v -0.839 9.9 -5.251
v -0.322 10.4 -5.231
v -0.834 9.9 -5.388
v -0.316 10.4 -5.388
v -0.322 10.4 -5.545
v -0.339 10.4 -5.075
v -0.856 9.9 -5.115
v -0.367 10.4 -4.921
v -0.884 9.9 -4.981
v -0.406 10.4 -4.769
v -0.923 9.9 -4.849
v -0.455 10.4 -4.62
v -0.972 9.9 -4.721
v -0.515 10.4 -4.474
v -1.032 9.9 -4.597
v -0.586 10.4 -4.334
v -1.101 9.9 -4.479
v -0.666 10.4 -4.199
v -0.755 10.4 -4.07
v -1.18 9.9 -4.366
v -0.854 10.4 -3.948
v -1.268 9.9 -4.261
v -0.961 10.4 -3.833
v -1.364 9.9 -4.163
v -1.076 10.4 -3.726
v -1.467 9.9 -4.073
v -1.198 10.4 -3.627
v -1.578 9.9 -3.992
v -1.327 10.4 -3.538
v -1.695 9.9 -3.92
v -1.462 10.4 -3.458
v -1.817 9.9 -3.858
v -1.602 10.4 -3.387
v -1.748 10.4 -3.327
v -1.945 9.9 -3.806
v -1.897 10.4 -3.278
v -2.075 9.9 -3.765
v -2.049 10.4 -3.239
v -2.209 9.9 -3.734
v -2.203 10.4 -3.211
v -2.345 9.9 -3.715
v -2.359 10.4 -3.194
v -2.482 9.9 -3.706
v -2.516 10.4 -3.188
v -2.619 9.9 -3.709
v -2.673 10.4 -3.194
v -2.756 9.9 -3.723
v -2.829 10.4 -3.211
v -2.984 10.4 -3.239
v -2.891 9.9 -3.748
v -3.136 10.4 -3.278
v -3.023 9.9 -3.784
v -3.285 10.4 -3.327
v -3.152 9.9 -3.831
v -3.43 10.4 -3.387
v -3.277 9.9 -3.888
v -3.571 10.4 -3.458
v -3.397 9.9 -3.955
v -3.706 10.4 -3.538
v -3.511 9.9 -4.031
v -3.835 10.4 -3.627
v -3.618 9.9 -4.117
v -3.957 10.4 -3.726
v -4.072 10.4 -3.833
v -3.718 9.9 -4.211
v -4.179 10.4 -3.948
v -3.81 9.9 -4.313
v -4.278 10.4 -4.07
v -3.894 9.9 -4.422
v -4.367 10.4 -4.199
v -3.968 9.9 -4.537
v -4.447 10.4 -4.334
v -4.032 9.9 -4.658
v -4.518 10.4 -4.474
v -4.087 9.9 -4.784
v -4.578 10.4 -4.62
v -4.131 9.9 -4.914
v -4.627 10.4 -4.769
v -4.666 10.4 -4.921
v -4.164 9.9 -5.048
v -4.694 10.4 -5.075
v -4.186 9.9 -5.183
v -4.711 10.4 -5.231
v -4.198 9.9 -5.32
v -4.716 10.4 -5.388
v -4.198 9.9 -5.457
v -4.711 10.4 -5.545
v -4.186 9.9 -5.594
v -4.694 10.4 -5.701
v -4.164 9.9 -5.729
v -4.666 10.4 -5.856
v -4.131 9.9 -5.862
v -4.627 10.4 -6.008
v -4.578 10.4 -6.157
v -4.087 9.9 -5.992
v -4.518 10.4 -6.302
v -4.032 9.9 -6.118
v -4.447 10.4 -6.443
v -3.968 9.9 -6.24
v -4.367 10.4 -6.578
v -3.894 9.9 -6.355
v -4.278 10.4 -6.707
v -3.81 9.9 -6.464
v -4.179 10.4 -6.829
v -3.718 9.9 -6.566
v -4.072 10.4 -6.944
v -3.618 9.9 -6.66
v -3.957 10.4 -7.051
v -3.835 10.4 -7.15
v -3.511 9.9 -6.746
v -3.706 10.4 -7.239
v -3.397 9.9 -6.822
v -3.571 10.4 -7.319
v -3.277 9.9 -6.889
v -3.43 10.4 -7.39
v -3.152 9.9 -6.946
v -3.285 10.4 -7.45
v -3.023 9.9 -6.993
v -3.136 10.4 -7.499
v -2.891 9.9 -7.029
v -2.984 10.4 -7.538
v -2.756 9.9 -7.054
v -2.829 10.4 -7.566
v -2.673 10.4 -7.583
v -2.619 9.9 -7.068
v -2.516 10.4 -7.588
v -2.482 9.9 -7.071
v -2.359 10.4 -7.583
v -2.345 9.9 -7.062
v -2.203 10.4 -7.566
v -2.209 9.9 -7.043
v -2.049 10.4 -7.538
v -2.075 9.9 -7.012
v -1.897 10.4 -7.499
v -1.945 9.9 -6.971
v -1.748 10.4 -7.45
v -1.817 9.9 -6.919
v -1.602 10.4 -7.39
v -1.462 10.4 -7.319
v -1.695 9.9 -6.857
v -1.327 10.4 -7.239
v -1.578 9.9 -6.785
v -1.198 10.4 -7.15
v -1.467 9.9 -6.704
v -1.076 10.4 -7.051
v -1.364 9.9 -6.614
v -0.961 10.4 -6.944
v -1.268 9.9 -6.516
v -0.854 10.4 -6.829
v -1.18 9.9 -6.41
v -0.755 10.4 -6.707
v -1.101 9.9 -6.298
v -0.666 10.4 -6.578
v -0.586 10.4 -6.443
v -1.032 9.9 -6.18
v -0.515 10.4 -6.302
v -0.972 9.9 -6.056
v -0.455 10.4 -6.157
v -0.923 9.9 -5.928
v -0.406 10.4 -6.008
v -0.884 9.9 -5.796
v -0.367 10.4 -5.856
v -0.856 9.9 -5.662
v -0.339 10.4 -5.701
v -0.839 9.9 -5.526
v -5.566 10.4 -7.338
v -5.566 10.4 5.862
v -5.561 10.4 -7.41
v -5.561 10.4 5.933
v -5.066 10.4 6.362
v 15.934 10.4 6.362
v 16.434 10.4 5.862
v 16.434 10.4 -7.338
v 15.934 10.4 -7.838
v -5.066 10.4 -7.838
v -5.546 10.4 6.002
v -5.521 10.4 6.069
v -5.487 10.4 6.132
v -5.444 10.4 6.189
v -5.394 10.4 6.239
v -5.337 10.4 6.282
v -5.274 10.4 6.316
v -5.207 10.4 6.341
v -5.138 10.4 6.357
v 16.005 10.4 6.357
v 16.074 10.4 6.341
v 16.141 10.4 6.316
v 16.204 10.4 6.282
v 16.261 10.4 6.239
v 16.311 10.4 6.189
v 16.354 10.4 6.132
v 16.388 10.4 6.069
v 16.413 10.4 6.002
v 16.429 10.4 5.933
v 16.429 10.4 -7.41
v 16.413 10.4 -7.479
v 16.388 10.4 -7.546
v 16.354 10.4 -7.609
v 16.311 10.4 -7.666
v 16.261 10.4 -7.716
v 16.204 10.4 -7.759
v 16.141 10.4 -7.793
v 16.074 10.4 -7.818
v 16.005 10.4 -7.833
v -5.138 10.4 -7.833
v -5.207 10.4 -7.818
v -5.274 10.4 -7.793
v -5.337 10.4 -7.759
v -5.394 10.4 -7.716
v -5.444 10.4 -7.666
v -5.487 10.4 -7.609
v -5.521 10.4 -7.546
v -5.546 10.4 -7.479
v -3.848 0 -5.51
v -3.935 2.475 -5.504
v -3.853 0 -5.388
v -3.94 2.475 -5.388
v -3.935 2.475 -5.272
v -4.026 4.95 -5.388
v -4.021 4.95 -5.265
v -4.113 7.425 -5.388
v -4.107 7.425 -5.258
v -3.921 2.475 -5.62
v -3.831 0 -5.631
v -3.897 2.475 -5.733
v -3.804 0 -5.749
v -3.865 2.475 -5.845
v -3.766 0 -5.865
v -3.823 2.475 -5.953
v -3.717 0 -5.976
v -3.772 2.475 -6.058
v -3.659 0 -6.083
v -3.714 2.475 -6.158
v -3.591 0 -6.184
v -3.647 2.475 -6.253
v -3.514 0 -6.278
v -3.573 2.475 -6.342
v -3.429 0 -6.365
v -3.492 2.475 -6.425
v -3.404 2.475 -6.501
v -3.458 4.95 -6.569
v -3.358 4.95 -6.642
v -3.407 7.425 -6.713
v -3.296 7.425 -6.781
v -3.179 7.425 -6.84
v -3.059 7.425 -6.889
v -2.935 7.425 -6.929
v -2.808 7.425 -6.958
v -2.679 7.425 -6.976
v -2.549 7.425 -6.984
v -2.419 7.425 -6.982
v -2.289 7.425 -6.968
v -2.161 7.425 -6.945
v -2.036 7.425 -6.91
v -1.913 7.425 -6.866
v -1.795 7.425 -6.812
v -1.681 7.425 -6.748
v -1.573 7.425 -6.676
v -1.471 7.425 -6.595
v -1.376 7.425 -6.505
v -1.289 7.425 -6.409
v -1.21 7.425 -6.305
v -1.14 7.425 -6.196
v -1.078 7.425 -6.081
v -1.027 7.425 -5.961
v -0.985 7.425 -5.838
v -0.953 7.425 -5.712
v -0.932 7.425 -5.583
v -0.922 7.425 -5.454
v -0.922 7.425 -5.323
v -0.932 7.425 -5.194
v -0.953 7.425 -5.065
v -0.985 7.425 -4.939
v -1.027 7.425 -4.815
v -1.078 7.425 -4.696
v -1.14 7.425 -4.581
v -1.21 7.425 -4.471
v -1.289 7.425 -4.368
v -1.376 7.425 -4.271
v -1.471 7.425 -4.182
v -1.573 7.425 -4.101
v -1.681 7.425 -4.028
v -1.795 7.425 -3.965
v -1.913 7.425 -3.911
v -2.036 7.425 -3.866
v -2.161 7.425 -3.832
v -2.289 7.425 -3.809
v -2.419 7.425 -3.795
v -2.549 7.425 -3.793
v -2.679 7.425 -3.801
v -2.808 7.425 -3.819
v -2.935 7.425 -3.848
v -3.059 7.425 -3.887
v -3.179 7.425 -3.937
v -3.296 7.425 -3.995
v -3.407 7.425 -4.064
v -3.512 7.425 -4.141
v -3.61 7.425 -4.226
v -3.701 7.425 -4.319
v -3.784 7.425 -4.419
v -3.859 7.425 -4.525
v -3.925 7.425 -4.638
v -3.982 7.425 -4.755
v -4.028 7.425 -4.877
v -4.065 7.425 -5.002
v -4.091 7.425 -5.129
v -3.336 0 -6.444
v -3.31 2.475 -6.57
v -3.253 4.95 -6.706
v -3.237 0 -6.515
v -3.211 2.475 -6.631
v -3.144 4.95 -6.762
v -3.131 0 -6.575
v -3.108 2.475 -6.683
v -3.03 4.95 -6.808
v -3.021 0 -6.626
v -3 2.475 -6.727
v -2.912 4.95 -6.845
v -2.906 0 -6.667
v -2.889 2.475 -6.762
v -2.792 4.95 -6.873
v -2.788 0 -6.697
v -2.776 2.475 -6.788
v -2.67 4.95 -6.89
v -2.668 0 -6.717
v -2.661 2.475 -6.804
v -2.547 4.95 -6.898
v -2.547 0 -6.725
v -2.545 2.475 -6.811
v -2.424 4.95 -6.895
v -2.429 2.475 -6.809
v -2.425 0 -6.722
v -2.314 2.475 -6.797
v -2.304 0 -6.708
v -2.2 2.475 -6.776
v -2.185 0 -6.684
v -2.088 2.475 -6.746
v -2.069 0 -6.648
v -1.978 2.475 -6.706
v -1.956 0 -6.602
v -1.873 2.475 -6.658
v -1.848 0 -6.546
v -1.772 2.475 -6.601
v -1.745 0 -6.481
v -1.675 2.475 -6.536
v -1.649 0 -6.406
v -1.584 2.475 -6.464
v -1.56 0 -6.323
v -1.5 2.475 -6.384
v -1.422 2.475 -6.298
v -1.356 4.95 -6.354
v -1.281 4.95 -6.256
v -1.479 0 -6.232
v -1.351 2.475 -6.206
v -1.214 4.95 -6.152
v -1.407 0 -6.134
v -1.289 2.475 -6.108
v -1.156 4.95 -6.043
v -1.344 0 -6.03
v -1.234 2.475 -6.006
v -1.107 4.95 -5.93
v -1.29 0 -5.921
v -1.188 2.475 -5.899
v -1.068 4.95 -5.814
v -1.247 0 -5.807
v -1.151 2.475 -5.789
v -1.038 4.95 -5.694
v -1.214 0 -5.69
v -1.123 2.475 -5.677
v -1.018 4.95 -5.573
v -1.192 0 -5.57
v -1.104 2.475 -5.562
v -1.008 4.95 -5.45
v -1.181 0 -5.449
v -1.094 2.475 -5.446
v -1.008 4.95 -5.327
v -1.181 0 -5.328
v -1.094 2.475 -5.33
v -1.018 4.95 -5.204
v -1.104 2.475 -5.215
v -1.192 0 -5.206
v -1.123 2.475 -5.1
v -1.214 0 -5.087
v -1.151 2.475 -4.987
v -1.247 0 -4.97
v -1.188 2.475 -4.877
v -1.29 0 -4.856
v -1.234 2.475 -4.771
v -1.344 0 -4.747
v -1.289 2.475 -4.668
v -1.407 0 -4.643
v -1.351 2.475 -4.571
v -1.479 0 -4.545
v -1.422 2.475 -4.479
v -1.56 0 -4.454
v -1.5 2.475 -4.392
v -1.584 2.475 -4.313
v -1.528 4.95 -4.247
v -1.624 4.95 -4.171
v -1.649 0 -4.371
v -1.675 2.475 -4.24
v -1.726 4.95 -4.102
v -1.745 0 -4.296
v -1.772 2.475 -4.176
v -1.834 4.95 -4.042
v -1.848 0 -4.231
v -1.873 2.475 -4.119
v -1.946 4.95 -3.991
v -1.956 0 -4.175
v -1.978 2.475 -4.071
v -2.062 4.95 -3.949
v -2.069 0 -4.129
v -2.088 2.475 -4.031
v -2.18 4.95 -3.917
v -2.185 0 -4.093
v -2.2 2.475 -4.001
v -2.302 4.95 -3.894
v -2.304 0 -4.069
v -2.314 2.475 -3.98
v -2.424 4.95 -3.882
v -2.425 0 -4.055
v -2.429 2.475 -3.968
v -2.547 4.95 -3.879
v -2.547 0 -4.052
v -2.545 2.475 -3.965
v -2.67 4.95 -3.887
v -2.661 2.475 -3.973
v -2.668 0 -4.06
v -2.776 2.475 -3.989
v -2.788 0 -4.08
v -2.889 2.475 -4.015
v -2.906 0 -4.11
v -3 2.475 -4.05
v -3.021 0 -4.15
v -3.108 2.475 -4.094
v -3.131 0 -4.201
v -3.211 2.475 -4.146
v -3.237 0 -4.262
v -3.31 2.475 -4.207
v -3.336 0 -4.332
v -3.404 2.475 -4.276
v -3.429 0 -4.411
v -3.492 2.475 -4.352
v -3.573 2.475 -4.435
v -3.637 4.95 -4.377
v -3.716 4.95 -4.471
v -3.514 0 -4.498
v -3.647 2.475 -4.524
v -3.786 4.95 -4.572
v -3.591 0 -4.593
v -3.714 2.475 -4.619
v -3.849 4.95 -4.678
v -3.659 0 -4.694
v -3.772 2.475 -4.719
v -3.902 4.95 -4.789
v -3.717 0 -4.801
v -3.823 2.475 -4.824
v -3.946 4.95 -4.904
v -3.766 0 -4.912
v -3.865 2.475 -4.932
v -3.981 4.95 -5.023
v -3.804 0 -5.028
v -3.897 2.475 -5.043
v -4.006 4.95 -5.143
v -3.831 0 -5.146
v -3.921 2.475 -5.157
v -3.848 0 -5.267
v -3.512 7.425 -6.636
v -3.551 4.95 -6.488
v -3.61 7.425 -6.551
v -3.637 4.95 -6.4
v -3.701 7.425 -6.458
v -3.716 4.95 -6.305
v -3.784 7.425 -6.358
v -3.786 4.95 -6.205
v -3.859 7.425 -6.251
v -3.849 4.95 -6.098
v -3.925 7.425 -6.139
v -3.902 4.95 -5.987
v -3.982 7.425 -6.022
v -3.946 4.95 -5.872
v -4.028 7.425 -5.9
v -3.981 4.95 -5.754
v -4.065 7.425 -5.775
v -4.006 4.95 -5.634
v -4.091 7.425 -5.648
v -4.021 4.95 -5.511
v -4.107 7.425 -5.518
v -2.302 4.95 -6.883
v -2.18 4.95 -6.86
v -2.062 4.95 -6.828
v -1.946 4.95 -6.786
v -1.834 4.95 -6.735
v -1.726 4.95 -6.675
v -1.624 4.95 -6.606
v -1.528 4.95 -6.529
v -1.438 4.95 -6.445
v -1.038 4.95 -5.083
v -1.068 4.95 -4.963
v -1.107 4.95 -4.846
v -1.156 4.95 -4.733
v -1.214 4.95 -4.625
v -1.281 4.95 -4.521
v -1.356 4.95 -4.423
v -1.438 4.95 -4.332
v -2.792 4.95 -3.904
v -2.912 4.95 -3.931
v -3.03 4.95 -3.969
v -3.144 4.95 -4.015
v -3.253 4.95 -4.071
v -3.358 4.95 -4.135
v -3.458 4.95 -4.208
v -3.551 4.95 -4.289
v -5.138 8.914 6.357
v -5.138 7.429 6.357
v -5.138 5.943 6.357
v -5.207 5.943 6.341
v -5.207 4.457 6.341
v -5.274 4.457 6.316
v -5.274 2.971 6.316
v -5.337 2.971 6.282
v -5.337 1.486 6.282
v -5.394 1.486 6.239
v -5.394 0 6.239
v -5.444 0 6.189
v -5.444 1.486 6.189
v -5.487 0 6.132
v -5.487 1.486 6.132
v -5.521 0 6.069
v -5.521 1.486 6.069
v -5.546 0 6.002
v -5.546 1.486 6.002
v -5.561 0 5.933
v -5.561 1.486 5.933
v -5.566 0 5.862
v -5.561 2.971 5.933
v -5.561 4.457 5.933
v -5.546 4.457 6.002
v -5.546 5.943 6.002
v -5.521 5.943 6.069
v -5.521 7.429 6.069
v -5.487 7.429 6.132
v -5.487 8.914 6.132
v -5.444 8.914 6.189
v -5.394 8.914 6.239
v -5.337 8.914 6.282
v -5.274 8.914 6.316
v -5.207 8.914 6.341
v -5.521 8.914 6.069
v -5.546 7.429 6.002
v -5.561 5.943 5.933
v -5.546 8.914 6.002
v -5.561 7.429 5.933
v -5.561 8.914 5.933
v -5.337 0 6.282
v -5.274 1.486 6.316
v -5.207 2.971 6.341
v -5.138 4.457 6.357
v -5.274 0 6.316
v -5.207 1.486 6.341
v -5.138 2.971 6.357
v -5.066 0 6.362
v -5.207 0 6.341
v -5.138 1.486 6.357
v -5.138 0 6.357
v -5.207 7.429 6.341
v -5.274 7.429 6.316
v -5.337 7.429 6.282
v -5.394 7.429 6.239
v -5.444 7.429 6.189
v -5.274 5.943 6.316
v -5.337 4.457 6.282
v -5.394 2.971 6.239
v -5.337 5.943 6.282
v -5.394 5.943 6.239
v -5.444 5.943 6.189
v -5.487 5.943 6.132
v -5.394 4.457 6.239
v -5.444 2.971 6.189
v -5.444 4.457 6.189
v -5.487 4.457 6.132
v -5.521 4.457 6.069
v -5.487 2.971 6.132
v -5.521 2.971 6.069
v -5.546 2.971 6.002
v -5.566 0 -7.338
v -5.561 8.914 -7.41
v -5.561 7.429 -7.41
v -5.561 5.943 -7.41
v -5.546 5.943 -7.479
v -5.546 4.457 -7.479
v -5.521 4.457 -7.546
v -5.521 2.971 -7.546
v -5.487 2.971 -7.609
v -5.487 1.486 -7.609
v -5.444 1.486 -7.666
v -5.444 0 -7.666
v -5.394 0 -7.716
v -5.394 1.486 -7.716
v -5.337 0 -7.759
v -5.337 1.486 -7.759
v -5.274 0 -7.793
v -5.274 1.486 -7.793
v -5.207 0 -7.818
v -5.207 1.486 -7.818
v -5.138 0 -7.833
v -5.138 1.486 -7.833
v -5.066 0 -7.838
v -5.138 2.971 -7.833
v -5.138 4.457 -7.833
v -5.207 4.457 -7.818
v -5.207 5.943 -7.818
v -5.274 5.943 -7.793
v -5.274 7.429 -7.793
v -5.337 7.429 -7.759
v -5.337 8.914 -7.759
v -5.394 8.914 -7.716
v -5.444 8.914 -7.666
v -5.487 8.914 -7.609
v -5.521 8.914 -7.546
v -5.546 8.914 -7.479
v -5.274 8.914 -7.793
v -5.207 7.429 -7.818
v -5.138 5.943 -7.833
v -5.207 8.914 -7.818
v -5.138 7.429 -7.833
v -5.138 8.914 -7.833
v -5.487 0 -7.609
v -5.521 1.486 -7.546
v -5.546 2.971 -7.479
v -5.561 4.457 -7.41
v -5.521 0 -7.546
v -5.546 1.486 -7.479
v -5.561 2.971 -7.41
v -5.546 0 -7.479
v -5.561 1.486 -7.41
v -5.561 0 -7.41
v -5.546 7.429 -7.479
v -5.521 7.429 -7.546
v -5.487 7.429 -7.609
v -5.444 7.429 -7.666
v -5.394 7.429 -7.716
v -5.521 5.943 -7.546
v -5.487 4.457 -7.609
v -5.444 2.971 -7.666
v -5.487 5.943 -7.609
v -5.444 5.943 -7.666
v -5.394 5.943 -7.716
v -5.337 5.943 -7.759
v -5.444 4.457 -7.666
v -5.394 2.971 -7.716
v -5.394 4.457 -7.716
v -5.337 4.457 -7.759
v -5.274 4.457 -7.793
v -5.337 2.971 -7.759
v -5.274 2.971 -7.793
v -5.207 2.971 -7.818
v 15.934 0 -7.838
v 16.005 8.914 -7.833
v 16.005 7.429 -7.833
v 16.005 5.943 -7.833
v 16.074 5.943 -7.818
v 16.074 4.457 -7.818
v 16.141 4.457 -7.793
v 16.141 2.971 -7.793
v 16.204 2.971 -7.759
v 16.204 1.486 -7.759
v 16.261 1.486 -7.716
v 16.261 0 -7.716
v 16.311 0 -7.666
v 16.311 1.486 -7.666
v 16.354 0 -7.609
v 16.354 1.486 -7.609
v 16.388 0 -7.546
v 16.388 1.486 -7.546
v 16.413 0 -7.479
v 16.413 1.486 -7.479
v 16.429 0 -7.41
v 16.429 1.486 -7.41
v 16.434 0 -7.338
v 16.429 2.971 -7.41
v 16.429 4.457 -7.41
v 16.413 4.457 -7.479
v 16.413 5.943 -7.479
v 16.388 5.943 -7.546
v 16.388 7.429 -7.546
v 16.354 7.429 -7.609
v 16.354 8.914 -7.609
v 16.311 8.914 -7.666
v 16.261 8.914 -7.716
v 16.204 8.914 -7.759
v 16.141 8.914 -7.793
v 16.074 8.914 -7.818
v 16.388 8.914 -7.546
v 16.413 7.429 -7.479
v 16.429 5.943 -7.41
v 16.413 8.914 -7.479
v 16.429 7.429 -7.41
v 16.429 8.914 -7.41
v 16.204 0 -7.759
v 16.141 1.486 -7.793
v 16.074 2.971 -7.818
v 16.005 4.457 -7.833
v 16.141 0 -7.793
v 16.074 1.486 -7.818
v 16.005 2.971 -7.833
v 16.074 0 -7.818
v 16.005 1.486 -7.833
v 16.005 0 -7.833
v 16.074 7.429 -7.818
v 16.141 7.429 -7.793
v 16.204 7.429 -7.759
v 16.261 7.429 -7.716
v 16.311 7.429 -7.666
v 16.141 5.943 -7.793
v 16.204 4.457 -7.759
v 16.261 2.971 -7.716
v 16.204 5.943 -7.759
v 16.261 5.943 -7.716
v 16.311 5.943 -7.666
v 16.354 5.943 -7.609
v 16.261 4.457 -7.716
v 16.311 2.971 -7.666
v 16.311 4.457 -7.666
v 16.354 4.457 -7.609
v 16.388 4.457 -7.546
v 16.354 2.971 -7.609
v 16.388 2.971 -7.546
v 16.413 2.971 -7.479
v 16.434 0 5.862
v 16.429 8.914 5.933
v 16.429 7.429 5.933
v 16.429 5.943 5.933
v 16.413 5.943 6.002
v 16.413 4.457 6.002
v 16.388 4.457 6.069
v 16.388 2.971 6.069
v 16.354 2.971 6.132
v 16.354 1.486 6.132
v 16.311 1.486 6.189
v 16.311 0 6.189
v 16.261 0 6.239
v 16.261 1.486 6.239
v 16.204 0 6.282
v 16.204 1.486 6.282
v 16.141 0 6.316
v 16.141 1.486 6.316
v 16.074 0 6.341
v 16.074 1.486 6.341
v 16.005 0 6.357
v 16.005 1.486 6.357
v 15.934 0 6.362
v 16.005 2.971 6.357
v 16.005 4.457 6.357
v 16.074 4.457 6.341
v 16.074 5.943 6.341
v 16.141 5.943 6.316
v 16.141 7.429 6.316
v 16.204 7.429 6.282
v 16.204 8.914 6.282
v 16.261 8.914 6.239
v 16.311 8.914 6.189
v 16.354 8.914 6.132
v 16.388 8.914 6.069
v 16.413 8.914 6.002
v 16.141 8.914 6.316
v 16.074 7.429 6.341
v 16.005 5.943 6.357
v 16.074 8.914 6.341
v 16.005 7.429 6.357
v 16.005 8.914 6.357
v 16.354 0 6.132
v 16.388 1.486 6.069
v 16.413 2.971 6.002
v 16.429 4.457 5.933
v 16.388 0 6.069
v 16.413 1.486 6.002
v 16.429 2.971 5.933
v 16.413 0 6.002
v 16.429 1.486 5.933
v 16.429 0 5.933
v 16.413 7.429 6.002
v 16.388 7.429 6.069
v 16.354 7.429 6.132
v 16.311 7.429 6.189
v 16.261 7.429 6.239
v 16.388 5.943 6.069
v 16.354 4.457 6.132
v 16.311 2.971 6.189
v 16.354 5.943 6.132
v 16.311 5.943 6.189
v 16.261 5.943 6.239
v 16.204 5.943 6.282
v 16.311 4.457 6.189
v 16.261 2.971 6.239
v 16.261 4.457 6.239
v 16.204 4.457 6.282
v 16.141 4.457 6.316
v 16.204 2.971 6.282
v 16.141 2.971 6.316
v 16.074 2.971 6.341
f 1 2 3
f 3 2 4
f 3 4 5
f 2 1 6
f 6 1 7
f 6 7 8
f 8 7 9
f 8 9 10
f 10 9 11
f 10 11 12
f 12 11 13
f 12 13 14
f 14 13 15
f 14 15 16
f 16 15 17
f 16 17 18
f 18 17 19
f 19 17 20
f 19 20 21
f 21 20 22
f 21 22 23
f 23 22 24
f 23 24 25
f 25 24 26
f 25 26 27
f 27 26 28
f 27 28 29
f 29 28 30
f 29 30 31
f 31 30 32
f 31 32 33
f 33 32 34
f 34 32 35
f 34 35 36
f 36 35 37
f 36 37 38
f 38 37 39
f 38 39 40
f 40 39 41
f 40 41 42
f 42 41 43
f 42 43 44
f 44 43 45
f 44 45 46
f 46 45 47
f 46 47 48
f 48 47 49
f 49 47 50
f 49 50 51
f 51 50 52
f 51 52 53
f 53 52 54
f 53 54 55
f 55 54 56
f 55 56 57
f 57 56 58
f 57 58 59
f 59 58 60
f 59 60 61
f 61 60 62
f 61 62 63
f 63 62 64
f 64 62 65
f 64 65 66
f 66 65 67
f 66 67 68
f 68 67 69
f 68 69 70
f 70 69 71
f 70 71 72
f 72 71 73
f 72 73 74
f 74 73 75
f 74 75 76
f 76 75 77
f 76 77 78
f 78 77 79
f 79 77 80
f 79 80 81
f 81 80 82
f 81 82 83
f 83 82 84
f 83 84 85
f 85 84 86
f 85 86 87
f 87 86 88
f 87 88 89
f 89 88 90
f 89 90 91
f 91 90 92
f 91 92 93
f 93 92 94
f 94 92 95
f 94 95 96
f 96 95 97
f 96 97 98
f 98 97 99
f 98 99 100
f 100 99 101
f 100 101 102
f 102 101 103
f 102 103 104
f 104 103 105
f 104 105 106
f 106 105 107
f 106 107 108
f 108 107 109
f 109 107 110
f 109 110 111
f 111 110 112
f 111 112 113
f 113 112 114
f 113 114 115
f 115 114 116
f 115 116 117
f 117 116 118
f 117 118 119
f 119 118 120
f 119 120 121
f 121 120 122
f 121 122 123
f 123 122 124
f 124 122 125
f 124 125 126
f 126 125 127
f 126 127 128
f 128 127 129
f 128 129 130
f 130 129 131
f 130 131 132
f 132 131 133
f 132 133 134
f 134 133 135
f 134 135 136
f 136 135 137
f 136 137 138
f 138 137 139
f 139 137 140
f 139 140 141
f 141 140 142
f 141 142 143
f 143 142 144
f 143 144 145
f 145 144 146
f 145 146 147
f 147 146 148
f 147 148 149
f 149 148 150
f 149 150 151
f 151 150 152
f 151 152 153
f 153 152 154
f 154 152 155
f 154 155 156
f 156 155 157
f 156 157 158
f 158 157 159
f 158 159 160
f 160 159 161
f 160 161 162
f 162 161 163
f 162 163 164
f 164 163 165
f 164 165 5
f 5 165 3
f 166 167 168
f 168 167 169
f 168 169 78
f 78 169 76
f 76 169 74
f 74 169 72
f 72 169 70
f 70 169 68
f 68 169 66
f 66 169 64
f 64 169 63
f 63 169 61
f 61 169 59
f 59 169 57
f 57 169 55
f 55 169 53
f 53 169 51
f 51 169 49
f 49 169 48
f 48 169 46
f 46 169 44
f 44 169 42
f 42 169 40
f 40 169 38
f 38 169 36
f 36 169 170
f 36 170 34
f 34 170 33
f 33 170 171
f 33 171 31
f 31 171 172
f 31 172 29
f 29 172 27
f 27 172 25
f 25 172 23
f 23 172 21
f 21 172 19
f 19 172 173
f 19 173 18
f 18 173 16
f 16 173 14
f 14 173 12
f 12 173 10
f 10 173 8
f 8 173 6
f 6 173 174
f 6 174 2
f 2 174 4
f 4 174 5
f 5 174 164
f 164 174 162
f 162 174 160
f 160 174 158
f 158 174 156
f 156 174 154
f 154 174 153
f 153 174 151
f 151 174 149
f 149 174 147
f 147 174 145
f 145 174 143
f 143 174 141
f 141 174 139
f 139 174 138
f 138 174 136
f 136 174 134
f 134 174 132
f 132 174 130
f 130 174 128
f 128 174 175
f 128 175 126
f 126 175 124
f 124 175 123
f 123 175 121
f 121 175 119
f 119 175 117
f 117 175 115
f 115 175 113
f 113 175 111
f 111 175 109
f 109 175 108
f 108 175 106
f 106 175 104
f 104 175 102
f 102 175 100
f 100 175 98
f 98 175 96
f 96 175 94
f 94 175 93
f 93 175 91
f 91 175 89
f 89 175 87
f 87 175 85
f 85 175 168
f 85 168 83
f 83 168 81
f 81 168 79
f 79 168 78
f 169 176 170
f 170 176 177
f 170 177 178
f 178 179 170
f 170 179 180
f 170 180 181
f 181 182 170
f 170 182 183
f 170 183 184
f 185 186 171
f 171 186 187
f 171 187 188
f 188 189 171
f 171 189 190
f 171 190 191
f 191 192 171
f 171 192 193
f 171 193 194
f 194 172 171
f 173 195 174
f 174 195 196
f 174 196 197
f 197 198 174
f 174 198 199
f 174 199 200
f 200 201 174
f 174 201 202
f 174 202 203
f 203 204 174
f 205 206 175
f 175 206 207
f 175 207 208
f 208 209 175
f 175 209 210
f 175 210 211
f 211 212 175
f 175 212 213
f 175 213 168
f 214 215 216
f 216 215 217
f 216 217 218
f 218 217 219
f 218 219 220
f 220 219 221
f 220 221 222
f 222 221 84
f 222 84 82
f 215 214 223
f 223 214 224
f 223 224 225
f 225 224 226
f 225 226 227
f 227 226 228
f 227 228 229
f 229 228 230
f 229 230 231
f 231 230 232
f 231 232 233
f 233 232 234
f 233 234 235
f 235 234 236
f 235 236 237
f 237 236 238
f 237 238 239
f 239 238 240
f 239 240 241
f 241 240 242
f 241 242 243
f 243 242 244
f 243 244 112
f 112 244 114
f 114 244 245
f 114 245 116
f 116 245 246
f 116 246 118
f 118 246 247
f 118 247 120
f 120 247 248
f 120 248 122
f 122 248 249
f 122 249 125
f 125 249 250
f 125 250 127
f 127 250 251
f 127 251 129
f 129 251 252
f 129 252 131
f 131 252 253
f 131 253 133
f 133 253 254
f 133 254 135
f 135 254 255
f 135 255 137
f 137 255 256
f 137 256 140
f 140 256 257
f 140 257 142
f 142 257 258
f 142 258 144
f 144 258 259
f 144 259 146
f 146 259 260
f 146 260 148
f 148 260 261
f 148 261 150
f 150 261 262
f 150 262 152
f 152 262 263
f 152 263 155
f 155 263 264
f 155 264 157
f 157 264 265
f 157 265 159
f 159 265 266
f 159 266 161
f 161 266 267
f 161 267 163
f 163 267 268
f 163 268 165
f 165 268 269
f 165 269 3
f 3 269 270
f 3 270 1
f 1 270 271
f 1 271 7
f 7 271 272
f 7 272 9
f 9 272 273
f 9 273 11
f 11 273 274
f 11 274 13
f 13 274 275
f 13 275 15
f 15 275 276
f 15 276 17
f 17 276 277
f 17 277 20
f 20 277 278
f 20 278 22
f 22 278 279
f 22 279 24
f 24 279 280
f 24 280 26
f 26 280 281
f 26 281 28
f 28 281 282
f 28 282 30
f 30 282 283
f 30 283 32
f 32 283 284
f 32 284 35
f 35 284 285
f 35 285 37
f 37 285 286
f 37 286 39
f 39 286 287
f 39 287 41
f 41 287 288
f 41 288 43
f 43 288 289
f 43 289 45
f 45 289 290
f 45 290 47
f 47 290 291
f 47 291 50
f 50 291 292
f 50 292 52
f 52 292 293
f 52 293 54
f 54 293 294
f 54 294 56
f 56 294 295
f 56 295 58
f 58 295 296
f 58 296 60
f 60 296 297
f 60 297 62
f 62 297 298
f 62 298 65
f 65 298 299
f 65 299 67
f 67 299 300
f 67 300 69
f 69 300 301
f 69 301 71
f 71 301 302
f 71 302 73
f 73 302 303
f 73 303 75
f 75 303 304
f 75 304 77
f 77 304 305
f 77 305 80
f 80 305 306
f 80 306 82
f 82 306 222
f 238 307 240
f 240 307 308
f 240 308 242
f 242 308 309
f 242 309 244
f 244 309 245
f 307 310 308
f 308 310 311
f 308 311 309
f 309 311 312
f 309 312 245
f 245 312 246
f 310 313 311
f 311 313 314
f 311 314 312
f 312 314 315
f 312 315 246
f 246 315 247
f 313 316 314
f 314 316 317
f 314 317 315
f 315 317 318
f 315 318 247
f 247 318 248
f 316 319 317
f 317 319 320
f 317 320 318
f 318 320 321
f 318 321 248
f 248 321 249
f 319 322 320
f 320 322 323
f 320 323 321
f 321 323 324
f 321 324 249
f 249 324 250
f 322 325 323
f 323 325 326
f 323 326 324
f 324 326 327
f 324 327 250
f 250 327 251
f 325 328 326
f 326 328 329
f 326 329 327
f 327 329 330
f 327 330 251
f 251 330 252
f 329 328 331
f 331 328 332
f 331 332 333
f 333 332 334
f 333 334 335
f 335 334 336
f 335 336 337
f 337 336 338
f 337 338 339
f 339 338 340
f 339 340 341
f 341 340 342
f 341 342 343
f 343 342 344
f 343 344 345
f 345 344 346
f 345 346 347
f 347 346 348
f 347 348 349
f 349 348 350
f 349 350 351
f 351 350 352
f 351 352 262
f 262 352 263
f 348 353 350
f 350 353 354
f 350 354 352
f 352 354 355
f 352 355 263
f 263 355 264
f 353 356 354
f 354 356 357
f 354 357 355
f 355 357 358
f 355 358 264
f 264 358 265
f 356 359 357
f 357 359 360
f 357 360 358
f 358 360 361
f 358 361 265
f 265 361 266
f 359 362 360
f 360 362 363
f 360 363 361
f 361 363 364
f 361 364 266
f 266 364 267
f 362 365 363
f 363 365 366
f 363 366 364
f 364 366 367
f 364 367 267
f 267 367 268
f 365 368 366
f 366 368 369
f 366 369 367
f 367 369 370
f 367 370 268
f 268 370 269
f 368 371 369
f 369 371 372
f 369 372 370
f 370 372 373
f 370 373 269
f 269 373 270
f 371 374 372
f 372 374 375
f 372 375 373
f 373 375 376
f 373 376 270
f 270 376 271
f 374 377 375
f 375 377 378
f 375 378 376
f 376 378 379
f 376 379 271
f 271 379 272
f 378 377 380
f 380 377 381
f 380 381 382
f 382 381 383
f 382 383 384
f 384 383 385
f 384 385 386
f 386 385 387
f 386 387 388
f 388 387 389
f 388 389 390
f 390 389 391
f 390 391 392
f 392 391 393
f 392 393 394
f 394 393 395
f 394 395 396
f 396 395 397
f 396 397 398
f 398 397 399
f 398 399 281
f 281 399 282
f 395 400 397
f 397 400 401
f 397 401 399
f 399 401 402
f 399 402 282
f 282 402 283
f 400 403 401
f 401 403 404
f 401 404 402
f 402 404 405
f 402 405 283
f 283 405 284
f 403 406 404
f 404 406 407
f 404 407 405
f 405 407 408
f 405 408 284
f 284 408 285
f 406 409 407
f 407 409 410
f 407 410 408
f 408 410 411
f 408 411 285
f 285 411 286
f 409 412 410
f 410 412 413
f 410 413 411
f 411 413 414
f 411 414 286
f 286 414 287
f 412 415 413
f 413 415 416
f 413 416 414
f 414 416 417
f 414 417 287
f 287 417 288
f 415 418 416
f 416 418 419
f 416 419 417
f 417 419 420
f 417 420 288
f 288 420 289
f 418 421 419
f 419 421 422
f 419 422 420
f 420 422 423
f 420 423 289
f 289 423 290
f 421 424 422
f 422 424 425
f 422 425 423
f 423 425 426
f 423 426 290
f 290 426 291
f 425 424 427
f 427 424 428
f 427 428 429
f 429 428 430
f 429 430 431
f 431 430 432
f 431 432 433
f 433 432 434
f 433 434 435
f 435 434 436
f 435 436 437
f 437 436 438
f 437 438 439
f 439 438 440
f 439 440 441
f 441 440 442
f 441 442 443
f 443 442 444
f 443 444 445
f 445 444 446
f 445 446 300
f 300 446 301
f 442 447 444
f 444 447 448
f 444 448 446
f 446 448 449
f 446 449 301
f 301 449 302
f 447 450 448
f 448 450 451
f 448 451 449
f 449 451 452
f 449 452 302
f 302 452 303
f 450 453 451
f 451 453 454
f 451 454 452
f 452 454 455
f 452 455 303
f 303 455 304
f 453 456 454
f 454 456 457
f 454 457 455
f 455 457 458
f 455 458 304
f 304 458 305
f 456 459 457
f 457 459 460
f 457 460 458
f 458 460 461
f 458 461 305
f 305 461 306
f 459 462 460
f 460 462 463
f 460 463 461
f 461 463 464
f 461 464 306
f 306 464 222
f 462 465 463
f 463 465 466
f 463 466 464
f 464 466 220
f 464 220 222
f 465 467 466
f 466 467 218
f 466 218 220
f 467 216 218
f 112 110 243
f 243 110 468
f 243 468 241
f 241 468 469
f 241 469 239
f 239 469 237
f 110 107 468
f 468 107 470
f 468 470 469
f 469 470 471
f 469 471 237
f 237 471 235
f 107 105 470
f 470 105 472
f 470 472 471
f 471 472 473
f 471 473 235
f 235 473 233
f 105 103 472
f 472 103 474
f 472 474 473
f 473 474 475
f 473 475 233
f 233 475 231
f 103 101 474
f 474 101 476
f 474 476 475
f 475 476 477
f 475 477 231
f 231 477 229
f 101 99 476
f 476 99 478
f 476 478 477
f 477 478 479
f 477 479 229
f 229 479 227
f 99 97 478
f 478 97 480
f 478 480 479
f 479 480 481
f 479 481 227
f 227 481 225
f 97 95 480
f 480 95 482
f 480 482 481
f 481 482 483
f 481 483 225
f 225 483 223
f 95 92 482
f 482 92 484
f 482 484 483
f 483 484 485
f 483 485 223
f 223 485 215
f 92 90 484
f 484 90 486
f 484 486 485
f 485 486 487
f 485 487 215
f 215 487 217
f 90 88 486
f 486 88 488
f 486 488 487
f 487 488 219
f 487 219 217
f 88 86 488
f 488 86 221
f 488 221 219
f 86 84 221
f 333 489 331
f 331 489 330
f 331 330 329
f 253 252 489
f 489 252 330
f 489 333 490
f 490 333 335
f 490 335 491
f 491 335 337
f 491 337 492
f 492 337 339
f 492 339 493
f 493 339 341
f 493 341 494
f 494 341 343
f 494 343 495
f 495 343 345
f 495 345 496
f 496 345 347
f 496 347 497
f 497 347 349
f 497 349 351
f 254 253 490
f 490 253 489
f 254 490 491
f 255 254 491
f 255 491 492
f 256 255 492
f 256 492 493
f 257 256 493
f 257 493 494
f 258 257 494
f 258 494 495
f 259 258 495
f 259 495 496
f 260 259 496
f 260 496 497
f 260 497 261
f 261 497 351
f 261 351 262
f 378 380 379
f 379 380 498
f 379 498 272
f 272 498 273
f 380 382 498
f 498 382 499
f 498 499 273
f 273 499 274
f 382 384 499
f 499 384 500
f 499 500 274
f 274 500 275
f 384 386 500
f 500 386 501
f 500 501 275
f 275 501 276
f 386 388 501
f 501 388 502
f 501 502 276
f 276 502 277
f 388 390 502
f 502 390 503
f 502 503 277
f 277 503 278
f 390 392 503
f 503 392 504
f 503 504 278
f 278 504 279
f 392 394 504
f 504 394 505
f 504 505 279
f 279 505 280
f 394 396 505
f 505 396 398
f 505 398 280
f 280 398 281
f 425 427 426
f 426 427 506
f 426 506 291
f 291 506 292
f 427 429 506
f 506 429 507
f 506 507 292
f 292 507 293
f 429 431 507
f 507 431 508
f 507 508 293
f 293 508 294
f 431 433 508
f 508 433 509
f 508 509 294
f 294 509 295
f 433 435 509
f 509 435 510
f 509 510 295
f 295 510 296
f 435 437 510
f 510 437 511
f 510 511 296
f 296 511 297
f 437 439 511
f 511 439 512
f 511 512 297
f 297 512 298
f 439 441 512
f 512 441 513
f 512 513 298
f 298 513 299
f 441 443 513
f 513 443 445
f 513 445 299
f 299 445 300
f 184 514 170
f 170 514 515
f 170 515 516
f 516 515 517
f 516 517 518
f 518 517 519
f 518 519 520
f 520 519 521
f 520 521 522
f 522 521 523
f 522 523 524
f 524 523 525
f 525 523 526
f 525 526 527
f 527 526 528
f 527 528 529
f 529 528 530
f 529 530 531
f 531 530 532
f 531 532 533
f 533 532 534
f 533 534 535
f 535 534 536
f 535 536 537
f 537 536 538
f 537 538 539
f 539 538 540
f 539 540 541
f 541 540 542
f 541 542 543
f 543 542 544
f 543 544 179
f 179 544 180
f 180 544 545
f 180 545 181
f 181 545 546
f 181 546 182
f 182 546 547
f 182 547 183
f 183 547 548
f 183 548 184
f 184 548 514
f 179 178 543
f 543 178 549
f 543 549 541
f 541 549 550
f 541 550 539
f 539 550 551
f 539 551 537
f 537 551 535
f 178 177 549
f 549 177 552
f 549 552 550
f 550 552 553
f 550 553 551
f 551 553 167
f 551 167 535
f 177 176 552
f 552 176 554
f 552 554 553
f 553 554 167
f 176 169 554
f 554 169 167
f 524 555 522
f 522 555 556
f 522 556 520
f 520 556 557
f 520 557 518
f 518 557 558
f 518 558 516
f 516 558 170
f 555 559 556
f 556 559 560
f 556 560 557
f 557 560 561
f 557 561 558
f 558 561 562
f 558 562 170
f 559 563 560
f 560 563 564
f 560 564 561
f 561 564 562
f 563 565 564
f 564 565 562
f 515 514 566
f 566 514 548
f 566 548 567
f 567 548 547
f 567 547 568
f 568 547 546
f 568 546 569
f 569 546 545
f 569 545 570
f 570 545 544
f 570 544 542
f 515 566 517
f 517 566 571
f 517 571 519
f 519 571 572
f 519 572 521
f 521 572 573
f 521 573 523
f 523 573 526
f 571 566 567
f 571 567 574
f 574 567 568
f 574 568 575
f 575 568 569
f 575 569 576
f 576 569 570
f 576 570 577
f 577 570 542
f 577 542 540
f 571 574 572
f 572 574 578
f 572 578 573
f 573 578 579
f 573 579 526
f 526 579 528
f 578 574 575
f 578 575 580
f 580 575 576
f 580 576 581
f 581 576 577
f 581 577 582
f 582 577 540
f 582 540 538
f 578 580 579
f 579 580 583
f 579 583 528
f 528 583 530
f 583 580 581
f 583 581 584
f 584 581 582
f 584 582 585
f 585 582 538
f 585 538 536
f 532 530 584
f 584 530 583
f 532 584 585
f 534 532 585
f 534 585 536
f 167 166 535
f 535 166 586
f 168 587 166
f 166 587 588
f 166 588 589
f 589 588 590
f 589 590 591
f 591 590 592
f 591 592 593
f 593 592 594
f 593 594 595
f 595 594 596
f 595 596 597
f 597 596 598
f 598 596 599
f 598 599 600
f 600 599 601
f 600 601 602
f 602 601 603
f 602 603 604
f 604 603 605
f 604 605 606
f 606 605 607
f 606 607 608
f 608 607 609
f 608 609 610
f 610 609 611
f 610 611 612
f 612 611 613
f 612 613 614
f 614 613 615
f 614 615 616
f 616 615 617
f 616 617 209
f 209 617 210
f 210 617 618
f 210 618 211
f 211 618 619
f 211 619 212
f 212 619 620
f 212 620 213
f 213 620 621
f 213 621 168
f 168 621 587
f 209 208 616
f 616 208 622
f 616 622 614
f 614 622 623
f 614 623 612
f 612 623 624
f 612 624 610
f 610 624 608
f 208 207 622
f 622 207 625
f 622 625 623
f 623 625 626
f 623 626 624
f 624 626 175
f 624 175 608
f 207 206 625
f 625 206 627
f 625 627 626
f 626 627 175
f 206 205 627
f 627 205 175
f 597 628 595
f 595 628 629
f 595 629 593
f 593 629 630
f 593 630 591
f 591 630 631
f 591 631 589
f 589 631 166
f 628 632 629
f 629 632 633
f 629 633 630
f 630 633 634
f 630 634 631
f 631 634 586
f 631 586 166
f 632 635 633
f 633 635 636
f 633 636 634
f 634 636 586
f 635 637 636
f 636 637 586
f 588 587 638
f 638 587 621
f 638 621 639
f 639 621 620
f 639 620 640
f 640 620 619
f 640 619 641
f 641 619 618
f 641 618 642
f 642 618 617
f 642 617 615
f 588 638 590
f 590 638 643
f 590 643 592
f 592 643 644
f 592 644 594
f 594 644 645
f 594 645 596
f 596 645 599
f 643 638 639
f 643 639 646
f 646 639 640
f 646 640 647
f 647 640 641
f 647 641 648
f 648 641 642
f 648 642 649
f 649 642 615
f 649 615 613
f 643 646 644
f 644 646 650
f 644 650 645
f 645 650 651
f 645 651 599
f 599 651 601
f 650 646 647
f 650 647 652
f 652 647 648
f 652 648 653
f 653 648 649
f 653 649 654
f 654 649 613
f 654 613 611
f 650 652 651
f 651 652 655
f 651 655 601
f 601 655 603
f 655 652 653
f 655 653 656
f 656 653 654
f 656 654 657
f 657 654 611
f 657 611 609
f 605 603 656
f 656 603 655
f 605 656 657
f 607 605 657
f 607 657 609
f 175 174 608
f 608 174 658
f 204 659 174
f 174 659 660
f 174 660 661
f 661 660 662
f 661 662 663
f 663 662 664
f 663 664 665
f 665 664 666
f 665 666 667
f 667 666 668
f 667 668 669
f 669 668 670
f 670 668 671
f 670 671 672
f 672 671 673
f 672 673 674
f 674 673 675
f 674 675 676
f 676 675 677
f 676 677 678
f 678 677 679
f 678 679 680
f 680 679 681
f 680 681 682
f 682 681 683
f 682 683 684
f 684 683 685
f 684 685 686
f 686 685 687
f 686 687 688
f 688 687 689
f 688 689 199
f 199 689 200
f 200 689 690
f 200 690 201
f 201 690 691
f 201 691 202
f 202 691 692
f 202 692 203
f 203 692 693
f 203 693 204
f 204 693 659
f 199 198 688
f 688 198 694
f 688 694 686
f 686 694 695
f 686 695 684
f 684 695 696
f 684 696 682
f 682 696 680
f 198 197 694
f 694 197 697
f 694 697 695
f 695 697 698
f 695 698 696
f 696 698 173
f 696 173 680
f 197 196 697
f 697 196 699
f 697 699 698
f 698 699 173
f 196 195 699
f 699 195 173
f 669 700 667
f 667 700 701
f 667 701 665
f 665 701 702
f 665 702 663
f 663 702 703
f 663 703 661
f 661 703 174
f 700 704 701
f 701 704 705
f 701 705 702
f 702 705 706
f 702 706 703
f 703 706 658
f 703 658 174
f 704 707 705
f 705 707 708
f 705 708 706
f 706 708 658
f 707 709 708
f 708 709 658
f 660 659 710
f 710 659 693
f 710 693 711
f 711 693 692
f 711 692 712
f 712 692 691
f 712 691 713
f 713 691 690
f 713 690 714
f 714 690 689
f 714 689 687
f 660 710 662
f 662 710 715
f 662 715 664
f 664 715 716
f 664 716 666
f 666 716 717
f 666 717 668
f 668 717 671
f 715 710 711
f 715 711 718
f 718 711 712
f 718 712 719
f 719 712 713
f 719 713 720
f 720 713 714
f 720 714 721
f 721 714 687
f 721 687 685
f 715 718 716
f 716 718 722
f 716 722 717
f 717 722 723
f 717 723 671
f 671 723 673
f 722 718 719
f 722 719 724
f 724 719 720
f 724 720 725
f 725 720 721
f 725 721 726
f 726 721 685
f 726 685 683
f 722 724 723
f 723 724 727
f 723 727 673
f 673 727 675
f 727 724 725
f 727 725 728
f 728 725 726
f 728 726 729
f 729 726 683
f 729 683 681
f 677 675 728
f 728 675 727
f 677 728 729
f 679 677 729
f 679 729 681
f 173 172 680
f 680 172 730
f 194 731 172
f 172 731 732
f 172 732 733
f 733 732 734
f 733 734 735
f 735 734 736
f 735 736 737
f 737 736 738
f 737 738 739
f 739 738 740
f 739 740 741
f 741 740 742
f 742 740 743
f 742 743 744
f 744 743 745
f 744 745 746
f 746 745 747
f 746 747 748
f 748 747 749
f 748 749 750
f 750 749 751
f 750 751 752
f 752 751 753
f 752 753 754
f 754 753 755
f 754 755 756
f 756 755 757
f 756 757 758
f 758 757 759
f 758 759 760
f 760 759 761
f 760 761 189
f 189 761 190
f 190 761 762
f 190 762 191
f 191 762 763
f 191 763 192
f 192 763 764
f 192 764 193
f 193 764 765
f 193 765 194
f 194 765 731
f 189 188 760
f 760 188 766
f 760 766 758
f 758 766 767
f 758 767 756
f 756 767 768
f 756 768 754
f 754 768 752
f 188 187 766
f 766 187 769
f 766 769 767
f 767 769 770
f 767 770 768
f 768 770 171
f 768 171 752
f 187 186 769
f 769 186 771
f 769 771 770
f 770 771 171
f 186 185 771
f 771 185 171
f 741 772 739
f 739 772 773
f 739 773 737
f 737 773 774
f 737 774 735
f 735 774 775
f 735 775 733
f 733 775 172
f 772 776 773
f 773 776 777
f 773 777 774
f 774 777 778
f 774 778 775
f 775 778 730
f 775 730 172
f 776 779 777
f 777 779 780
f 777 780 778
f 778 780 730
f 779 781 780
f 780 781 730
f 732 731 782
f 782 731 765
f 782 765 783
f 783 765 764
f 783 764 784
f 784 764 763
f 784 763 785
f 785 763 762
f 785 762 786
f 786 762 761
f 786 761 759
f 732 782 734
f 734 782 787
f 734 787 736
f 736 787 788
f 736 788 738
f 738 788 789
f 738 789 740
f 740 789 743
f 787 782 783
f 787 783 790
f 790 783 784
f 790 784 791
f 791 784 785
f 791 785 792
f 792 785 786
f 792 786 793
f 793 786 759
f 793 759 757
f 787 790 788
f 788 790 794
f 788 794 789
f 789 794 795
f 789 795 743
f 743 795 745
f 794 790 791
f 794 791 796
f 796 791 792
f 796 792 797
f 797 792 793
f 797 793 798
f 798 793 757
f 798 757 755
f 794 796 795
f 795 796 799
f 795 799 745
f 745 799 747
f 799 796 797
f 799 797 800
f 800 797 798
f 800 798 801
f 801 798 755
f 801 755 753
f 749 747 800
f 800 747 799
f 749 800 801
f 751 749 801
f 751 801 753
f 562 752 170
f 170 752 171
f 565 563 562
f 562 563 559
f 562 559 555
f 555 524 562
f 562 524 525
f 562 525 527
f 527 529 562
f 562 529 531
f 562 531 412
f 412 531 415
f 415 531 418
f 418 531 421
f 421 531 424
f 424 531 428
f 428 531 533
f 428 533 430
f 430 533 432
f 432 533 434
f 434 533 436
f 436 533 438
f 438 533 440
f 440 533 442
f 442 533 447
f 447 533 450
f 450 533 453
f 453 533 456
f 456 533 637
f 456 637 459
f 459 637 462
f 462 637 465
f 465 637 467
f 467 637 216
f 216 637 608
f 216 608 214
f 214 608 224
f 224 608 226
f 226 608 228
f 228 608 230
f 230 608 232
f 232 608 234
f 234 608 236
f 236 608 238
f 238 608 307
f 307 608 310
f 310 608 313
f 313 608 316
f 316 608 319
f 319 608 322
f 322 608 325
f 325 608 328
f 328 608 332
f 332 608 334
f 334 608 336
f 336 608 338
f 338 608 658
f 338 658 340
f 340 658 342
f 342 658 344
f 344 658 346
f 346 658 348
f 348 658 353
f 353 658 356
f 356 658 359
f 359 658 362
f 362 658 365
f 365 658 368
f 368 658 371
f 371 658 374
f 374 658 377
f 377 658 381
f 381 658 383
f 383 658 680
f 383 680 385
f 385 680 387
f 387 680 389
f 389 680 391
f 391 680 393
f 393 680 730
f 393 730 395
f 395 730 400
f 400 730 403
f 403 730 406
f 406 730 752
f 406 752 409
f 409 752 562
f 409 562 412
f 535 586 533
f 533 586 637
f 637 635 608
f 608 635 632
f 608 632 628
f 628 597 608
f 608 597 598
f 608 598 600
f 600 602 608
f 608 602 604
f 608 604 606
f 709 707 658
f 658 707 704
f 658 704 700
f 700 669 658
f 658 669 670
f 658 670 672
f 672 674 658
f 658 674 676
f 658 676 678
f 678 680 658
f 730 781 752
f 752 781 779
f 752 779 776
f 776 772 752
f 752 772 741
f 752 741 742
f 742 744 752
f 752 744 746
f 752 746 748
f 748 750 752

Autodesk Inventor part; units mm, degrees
ref_plane "YZ Plane" through (0, 0, 0) normal (1, 0, 0) x (0, 1, 0)
ref_plane "XZ Plane" through (0, 0, 0) normal (0, 1, 0) x (-1, 0, 0)
ref_plane "XY Plane" through (0, 0, 0) normal (0, 0, 1) x (1, 0, 0)
sketch "Sketch1" plane through (0, 0, 0) normal (0, 1, 0) x (-1, 0, 0)
  line L0 (5.5664, 6.3616) -> (-16.4336, 6.3616)
  line L1 (-16.4336, 6.3616) -> (-16.4336, -7.8384)
  line L2 (-16.4336, -7.8384) -> (5.5664, -7.8384)
  line L3 (5.5664, -7.8384) -> (5.5664, 6.3616)
  point P0 (0, 0)
  dimension "d2" = 14.2
  dimension "d3" = 22
extrude "Extrusion1" add sketch "Sketch1" along normal blind 10.4
sketch "Sketch2" plane through (0, 10.4, 0) normal (0, 1, 0) x (1, 0, 0)
  line L0 (-5.5664, -6.3616) -> (16.4336, -6.3616) projected
  line L1 (16.4336, -6.3616) -> (16.4336, 7.8384) projected
  line L2 (16.4336, 7.8384) -> (-5.5664, 7.8384) projected
  line L3 (-5.5664, 7.8384) -> (-5.5664, -6.3616) projected
  line L4 (-5.5664, -6.3616) -> (16.4336, -6.3616) projected
  line L5 (-4.3664, -6.3616) -> (-4.3664, 7.8384)
  line L6 (-5.5664, 7.8384) -> (-5.5664, -6.3616) projected
  line L7 (-5.5664, 7.2384) -> (16.4336, 7.2384)
  line L8 (16.4336, -6.3616) -> (16.4336, 7.8384) projected
  circle A0 centre (-2.5164, 5.3884) radius 1.85
  circle A1 centre (-2.5164, 5.3884) radius 1.7
  point P0 (0, 0)
  point P1 (5.4336, 7.2384)
  dimension "d4" = 1.2
  dimension "d5" = 0.6
  dimension "d6" = 3.7
  dimension "d8" = 3.4
extrude "Extrusion2" cut sketch "Sketch2" against normal through all draft -2 contours A1
fillet "Fillet1" radius 0.5 4 edges at (16.4336, 5.2, 6.3616) (16.4336, 5.2, -7.8384) (-5.5664, 5.2, -7.8384) (-5.5664, 5.2, 6.3616)
chamfer "Chamfer1" distance 0.5 angle 45 1 edges at (-4.2164, 10.4, -5.3884)
properties part number "podpora_imu"
